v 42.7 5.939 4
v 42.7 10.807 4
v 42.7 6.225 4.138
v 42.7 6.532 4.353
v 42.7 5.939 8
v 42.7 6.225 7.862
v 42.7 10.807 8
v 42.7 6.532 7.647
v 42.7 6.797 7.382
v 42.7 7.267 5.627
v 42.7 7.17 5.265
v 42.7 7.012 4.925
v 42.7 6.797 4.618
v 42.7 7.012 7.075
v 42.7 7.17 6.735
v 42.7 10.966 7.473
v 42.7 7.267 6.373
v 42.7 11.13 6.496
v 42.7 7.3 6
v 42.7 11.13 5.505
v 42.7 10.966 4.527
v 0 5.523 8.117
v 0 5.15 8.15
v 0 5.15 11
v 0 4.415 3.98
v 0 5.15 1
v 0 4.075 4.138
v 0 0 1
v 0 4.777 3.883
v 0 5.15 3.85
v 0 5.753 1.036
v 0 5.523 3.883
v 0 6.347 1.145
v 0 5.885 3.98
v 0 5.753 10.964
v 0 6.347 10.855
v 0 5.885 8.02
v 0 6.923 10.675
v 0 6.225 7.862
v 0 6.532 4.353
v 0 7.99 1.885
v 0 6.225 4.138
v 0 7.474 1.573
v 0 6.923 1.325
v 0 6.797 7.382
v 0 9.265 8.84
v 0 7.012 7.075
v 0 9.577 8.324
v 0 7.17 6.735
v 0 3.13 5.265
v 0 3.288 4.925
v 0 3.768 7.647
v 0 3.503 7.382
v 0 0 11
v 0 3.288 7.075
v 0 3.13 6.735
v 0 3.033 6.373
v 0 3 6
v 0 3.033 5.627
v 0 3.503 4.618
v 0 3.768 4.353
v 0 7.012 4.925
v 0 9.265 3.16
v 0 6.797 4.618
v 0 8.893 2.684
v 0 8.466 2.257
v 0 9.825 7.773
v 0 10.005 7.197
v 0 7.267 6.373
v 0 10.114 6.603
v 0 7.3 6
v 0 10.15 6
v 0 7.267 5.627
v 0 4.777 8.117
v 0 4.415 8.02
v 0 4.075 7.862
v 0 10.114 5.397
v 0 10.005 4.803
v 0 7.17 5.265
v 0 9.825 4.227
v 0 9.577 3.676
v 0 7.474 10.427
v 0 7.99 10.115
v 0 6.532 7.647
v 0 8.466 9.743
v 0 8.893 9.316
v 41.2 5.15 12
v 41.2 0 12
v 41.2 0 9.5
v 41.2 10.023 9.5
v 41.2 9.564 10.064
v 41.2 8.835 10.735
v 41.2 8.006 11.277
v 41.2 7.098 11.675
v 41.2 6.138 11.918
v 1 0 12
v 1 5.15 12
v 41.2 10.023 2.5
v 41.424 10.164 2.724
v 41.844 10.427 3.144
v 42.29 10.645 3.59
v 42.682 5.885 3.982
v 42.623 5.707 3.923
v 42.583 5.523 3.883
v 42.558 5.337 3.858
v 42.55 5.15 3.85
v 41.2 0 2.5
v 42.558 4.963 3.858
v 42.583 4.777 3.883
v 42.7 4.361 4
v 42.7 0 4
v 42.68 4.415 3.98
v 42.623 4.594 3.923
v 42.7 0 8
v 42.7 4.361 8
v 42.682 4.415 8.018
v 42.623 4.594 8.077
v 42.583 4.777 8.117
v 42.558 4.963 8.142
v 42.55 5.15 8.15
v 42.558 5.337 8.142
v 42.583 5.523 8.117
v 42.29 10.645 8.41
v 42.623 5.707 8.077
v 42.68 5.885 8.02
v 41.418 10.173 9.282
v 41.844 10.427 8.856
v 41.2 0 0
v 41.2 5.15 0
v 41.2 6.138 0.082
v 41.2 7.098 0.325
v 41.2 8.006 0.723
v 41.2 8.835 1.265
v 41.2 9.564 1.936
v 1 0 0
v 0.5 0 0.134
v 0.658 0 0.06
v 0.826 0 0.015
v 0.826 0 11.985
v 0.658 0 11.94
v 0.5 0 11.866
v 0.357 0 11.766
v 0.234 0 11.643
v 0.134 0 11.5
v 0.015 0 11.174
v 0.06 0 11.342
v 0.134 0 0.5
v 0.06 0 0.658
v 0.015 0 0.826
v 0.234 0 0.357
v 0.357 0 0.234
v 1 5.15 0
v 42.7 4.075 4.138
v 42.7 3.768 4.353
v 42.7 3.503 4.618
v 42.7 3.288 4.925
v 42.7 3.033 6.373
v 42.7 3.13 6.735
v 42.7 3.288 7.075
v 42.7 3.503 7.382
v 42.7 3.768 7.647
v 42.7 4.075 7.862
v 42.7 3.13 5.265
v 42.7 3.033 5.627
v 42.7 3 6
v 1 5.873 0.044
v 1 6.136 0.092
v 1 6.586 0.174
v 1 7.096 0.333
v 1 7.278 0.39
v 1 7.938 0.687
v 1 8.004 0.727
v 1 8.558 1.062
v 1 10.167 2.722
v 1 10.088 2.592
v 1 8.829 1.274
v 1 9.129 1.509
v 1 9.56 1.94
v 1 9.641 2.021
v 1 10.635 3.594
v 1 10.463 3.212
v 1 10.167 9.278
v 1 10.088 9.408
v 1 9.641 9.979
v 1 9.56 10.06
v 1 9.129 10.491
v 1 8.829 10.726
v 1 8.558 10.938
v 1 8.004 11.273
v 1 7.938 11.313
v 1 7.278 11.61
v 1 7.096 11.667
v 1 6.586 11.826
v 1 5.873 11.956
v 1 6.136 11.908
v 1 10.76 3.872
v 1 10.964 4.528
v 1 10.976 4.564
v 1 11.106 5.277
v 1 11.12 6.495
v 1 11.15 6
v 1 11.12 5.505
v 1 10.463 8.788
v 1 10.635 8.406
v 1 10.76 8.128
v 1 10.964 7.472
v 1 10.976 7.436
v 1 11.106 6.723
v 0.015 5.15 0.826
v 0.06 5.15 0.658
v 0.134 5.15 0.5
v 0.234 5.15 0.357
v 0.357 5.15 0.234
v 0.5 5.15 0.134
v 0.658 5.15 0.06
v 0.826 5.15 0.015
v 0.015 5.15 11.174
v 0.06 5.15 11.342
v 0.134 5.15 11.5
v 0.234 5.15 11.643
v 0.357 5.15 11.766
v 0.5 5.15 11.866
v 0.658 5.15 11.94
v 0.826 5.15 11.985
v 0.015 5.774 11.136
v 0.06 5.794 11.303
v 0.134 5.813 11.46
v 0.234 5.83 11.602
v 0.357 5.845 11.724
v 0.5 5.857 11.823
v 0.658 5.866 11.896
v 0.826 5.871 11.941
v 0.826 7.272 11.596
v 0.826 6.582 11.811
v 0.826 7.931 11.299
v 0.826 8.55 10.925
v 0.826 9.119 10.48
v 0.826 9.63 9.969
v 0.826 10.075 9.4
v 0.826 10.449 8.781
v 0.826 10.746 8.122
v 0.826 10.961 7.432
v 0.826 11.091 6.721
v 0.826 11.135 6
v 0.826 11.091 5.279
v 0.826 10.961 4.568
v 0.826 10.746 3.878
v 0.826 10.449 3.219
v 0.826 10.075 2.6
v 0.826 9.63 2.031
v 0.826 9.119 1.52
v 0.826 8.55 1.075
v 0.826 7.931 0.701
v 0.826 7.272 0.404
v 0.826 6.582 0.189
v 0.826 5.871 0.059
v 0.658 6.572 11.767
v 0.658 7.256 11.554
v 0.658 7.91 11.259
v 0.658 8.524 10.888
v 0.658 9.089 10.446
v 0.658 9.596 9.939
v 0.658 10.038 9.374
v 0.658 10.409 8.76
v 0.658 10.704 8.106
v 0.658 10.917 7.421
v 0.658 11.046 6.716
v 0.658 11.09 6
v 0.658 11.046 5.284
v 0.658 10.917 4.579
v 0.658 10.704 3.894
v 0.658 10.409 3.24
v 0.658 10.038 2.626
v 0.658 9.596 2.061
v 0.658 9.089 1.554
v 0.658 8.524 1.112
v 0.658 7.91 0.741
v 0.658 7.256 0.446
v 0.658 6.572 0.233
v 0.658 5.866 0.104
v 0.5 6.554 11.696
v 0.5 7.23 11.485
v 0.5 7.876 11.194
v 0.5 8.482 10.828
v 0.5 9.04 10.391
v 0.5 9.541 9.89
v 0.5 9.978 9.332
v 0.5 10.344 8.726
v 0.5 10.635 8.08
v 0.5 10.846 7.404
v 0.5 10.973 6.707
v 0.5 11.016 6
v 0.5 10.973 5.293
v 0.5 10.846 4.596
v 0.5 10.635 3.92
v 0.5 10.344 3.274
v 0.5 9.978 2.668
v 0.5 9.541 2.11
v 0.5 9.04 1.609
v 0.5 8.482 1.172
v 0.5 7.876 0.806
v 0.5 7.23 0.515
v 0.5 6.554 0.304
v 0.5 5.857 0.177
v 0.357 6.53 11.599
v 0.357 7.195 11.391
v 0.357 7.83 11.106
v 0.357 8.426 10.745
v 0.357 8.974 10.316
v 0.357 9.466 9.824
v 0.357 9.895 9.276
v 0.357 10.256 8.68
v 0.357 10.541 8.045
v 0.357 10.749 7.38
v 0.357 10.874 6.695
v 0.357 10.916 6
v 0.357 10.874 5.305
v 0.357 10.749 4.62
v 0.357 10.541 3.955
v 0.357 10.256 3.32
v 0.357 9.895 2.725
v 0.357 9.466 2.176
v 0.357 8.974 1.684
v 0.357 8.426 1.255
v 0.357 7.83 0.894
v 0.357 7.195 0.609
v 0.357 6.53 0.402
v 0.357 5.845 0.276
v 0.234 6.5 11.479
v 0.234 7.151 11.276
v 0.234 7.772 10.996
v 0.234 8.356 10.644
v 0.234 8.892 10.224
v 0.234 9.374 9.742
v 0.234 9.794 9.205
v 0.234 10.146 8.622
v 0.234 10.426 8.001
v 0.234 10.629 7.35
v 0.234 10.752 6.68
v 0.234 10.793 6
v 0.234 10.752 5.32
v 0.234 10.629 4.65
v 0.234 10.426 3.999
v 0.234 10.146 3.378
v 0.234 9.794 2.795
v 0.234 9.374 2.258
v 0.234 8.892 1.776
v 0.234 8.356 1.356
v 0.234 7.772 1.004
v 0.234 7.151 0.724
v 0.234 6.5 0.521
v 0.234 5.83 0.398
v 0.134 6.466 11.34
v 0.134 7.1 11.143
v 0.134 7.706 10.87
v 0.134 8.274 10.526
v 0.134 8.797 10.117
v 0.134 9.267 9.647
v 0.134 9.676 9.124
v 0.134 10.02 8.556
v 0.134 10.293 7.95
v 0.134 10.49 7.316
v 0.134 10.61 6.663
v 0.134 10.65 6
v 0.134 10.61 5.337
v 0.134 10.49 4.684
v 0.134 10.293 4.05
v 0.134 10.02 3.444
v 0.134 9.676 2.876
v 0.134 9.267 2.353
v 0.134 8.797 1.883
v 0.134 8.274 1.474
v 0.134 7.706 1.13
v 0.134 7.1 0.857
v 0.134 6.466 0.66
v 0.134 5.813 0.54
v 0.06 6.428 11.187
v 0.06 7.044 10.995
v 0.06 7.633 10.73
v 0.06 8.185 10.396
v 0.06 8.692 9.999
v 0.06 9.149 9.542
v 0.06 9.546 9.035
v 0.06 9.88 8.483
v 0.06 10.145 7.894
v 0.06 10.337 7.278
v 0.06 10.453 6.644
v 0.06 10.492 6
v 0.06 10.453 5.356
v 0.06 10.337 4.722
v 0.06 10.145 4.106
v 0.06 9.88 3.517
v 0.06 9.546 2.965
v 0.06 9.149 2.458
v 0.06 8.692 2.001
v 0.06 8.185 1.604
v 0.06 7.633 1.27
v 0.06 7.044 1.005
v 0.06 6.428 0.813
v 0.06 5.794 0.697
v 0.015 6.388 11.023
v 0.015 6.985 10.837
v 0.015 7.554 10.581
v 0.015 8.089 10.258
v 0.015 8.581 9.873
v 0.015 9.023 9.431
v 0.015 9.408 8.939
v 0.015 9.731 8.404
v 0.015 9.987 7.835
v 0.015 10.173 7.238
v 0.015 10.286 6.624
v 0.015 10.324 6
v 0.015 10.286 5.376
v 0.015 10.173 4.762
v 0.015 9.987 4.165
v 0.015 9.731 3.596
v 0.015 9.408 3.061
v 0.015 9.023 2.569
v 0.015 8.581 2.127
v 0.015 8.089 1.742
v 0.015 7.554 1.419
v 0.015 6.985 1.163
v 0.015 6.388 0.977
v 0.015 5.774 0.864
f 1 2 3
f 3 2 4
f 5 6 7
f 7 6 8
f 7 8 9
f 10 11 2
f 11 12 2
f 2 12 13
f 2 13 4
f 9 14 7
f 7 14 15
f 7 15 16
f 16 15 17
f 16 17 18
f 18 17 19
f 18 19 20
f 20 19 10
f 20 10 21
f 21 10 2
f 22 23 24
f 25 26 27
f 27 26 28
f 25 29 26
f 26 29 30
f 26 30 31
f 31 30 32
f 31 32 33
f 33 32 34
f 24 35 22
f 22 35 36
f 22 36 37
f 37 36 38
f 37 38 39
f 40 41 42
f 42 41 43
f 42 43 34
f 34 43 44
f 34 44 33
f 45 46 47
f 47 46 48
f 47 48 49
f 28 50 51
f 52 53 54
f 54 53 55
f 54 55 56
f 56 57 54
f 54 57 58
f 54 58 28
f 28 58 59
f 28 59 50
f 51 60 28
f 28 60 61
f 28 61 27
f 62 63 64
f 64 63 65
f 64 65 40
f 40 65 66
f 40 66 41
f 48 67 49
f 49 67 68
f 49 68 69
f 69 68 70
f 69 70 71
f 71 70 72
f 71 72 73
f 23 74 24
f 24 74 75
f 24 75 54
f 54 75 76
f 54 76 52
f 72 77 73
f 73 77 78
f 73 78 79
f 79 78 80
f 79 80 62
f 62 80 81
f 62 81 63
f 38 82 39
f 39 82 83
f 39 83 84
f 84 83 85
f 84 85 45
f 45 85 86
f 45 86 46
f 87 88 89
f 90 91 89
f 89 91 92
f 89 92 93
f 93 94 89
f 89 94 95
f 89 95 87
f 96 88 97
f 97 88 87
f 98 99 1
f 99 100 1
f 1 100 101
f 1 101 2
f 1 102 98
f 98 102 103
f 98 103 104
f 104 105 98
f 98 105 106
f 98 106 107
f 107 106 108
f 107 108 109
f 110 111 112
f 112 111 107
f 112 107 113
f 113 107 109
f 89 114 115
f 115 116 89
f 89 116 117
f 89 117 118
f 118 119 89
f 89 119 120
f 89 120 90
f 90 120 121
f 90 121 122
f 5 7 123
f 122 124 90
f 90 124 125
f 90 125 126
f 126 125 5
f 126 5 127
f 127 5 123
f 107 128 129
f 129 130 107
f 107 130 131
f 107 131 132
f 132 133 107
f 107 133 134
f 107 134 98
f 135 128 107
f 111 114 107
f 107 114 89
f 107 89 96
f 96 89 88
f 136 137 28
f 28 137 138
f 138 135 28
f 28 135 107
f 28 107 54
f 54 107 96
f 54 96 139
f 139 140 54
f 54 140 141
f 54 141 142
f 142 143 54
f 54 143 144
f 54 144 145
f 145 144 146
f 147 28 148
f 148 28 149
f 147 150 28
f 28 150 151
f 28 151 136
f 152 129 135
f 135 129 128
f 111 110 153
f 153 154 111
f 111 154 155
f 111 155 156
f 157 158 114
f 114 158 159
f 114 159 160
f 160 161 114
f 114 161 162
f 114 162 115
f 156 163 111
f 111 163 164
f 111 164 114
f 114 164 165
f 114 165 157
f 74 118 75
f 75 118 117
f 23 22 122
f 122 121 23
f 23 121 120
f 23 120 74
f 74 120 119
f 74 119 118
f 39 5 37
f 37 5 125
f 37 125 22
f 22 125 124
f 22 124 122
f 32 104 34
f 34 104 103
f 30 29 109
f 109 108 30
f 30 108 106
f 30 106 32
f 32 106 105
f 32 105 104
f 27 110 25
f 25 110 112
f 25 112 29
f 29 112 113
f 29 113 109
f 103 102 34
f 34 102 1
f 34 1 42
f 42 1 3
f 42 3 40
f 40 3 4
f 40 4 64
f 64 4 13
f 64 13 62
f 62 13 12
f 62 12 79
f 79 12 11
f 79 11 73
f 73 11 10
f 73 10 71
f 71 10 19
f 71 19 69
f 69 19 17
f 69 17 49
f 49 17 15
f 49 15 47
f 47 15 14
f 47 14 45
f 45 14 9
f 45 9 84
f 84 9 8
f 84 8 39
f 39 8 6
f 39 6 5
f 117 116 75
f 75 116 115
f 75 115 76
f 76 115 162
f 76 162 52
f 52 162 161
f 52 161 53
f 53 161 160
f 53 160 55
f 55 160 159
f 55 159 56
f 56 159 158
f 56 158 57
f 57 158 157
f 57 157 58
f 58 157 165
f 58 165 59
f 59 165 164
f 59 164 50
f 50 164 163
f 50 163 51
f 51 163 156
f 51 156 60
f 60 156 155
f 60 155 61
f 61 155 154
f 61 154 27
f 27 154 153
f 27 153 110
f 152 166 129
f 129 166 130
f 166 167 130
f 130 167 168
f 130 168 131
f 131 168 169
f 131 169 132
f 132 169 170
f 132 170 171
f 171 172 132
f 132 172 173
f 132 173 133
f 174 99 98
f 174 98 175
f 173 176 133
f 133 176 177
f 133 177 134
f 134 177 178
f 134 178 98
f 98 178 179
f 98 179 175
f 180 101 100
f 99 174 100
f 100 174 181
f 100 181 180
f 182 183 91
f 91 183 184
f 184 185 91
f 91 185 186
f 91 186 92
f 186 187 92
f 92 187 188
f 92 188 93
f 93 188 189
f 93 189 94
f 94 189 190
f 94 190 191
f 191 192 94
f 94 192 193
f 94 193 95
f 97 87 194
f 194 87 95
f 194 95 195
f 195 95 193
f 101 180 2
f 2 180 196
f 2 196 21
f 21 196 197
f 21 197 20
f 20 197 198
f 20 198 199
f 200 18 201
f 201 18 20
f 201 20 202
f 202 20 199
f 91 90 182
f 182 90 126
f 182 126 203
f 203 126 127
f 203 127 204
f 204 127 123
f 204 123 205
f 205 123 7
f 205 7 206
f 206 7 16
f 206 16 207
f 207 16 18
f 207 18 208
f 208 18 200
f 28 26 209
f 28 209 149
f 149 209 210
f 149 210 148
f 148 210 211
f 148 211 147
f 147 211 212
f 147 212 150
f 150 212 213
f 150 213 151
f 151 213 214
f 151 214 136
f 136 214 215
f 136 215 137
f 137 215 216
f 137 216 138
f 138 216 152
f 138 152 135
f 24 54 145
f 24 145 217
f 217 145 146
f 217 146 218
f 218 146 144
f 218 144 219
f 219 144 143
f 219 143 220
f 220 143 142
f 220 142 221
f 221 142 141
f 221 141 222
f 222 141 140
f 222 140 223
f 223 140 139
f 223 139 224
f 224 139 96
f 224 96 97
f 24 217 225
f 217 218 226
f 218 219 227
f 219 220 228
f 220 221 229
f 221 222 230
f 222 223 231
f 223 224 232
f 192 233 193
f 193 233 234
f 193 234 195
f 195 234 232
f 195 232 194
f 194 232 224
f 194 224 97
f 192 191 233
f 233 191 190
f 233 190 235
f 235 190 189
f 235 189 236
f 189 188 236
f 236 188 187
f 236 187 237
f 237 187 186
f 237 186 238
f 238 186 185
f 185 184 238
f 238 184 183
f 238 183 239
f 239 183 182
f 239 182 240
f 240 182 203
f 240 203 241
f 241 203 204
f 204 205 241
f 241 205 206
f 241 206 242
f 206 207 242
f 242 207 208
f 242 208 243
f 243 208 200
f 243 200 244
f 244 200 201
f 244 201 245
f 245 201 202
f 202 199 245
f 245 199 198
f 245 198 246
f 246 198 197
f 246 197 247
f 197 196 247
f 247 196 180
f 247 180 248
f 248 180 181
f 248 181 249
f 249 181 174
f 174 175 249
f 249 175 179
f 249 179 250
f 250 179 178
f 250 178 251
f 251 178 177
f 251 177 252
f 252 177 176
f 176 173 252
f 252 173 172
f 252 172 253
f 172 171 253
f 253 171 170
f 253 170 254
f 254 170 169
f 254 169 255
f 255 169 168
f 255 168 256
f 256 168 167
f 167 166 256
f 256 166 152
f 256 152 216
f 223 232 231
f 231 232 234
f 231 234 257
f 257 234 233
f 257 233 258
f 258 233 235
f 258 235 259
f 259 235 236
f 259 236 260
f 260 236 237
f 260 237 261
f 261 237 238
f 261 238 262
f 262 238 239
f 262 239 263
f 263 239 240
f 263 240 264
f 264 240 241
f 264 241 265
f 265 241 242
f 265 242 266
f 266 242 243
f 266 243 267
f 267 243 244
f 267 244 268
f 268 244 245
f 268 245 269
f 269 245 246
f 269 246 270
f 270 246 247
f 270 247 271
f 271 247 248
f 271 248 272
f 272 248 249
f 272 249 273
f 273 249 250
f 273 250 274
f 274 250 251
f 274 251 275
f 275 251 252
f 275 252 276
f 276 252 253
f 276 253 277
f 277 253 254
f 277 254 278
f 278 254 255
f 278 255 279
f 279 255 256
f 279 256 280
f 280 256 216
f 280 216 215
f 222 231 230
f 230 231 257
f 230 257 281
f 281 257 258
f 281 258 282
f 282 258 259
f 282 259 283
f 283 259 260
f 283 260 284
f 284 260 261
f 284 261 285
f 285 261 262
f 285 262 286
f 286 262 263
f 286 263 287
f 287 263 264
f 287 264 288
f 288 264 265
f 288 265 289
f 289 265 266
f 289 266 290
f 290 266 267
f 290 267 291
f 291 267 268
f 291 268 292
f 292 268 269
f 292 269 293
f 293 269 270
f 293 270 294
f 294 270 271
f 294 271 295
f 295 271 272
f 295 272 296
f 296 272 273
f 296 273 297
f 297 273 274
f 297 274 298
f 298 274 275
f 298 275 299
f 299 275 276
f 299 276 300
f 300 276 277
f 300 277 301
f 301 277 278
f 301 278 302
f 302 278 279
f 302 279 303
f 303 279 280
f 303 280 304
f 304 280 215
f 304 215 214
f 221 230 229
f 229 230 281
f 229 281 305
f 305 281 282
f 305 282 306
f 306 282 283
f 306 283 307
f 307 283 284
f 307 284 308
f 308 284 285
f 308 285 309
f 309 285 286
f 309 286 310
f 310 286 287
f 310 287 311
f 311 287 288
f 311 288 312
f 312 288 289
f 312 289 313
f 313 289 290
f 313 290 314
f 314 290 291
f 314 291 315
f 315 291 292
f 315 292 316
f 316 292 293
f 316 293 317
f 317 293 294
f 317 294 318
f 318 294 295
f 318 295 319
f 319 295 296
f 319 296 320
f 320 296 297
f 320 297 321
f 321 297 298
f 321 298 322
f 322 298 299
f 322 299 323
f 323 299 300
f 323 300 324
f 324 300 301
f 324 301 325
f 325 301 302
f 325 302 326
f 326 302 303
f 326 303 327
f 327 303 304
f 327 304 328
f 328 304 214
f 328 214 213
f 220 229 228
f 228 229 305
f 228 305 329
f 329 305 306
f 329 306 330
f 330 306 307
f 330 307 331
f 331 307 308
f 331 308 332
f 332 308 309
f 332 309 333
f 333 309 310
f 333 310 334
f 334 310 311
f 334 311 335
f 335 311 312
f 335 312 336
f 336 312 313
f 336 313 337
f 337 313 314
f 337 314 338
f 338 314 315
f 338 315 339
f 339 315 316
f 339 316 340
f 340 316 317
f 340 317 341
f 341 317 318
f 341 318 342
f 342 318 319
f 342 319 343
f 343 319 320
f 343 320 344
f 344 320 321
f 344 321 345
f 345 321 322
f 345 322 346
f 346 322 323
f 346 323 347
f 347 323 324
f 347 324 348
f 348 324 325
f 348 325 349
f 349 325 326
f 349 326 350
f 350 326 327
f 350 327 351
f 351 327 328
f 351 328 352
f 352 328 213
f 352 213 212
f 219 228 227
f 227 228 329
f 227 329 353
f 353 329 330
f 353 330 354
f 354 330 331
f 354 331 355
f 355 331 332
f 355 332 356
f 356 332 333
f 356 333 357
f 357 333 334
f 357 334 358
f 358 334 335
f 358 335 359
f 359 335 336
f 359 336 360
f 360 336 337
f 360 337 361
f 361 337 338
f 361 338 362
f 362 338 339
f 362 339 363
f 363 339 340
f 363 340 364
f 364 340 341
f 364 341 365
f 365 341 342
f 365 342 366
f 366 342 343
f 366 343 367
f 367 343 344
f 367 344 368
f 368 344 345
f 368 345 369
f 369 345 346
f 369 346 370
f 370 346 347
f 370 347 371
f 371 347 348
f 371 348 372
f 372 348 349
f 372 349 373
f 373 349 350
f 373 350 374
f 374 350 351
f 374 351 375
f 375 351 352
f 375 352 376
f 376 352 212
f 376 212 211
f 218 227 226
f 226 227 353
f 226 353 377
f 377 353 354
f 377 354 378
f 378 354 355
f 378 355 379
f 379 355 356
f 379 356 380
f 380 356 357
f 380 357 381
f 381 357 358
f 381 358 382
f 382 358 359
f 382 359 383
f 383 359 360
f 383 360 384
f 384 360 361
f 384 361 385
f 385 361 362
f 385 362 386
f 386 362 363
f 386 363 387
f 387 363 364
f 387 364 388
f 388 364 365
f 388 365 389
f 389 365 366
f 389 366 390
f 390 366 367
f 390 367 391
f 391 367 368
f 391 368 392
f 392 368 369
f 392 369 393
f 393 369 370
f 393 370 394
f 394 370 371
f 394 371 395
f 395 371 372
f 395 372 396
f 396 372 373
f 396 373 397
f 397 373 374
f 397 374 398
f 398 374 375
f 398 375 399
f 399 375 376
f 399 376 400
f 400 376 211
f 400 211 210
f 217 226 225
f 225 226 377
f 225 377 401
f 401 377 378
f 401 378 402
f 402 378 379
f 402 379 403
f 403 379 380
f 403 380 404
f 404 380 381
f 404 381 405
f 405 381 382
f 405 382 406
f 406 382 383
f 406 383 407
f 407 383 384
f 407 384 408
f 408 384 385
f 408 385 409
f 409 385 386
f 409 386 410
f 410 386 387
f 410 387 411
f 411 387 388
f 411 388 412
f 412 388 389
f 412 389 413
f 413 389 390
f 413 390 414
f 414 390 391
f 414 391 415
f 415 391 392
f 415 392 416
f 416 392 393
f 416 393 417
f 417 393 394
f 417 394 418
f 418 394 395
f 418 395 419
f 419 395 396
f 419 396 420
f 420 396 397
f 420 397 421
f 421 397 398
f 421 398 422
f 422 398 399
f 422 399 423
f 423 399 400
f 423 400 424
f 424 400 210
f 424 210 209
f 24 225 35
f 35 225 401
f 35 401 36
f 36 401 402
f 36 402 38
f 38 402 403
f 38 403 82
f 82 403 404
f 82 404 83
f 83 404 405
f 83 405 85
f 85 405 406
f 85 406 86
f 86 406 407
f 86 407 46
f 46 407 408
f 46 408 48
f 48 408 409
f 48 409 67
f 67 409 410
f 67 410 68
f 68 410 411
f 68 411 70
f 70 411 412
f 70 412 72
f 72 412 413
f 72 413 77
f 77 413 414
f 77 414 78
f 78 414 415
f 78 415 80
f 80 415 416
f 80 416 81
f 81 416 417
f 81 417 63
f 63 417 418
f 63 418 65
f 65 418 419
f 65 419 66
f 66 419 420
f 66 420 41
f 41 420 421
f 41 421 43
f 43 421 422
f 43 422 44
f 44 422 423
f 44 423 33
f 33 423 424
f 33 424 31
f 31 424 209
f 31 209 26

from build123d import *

# Parameters (mm, degrees)
SKETCH1_W           = 41.2
SKETCH1_H           = 13
BOSS_EXTRUDE1_DEPTH = 12
BOSS_EXTRUDE3_DEPTH = 13
SKETCH2_R           = 2.15
CUT_EXTRUDE1_DEPTH  = 43.7
FILLET1_R           = 1


with BuildPart() as part:
    # Sketch1 → Boss-Extrude1 (new body)
    with BuildSketch(Plane.XY):
        with Locations((20.6, 6.5)):
            Rectangle(SKETCH1_W, SKETCH1_H)
    extrude(amount=BOSS_EXTRUDE1_DEPTH)

    # Sketch3 → Boss-Extrude3 (add)
    with BuildSketch(Plane(origin=(0, 13, 0), x_dir=(1, 0, 0), z_dir=(0, 1, 0))):
        Polygon((42.7, -8), (41.2, -9.5), (41.2, -2.5), (42.7, -4), align=None)
    extrude(amount=-BOSS_EXTRUDE3_DEPTH)

    # Sketch2 → Cut-Extrude1 (cut, through all)
    with BuildSketch(Plane.ZY):
        with Locations((6, 5.15)):
            Circle(SKETCH2_R)
        with BuildLine():
            Line((-1.89805103, 5.15), (0, 5.15))
            ThreePointArc((0, 5.15), (6, 11.15), (12, 5.15))
            Line((12, 5.15), (16.198164726, 5.15))
            Line((16.198164726, 5.15), (16.198164726, 14.318930959))
            Line((16.198164726, 14.318930959), (-1.89805103, 14.318930959))
            Line((-1.89805103, 14.318930959), (-1.89805103, 5.15))
        make_face()
    extrude(amount=-CUT_EXTRUDE1_DEPTH, mode=Mode.SUBTRACT)

    # Fillet1
    fillet1_edges = [part.edges().sort_by_distance(p)[0] for p in [
        (0, 2.575, 0),
        (0, 2.575, 12),
        (0, 11.15, 6),
    ]]
    fillet(fillet1_edges, radius=FILLET1_R)


solid = part.part
